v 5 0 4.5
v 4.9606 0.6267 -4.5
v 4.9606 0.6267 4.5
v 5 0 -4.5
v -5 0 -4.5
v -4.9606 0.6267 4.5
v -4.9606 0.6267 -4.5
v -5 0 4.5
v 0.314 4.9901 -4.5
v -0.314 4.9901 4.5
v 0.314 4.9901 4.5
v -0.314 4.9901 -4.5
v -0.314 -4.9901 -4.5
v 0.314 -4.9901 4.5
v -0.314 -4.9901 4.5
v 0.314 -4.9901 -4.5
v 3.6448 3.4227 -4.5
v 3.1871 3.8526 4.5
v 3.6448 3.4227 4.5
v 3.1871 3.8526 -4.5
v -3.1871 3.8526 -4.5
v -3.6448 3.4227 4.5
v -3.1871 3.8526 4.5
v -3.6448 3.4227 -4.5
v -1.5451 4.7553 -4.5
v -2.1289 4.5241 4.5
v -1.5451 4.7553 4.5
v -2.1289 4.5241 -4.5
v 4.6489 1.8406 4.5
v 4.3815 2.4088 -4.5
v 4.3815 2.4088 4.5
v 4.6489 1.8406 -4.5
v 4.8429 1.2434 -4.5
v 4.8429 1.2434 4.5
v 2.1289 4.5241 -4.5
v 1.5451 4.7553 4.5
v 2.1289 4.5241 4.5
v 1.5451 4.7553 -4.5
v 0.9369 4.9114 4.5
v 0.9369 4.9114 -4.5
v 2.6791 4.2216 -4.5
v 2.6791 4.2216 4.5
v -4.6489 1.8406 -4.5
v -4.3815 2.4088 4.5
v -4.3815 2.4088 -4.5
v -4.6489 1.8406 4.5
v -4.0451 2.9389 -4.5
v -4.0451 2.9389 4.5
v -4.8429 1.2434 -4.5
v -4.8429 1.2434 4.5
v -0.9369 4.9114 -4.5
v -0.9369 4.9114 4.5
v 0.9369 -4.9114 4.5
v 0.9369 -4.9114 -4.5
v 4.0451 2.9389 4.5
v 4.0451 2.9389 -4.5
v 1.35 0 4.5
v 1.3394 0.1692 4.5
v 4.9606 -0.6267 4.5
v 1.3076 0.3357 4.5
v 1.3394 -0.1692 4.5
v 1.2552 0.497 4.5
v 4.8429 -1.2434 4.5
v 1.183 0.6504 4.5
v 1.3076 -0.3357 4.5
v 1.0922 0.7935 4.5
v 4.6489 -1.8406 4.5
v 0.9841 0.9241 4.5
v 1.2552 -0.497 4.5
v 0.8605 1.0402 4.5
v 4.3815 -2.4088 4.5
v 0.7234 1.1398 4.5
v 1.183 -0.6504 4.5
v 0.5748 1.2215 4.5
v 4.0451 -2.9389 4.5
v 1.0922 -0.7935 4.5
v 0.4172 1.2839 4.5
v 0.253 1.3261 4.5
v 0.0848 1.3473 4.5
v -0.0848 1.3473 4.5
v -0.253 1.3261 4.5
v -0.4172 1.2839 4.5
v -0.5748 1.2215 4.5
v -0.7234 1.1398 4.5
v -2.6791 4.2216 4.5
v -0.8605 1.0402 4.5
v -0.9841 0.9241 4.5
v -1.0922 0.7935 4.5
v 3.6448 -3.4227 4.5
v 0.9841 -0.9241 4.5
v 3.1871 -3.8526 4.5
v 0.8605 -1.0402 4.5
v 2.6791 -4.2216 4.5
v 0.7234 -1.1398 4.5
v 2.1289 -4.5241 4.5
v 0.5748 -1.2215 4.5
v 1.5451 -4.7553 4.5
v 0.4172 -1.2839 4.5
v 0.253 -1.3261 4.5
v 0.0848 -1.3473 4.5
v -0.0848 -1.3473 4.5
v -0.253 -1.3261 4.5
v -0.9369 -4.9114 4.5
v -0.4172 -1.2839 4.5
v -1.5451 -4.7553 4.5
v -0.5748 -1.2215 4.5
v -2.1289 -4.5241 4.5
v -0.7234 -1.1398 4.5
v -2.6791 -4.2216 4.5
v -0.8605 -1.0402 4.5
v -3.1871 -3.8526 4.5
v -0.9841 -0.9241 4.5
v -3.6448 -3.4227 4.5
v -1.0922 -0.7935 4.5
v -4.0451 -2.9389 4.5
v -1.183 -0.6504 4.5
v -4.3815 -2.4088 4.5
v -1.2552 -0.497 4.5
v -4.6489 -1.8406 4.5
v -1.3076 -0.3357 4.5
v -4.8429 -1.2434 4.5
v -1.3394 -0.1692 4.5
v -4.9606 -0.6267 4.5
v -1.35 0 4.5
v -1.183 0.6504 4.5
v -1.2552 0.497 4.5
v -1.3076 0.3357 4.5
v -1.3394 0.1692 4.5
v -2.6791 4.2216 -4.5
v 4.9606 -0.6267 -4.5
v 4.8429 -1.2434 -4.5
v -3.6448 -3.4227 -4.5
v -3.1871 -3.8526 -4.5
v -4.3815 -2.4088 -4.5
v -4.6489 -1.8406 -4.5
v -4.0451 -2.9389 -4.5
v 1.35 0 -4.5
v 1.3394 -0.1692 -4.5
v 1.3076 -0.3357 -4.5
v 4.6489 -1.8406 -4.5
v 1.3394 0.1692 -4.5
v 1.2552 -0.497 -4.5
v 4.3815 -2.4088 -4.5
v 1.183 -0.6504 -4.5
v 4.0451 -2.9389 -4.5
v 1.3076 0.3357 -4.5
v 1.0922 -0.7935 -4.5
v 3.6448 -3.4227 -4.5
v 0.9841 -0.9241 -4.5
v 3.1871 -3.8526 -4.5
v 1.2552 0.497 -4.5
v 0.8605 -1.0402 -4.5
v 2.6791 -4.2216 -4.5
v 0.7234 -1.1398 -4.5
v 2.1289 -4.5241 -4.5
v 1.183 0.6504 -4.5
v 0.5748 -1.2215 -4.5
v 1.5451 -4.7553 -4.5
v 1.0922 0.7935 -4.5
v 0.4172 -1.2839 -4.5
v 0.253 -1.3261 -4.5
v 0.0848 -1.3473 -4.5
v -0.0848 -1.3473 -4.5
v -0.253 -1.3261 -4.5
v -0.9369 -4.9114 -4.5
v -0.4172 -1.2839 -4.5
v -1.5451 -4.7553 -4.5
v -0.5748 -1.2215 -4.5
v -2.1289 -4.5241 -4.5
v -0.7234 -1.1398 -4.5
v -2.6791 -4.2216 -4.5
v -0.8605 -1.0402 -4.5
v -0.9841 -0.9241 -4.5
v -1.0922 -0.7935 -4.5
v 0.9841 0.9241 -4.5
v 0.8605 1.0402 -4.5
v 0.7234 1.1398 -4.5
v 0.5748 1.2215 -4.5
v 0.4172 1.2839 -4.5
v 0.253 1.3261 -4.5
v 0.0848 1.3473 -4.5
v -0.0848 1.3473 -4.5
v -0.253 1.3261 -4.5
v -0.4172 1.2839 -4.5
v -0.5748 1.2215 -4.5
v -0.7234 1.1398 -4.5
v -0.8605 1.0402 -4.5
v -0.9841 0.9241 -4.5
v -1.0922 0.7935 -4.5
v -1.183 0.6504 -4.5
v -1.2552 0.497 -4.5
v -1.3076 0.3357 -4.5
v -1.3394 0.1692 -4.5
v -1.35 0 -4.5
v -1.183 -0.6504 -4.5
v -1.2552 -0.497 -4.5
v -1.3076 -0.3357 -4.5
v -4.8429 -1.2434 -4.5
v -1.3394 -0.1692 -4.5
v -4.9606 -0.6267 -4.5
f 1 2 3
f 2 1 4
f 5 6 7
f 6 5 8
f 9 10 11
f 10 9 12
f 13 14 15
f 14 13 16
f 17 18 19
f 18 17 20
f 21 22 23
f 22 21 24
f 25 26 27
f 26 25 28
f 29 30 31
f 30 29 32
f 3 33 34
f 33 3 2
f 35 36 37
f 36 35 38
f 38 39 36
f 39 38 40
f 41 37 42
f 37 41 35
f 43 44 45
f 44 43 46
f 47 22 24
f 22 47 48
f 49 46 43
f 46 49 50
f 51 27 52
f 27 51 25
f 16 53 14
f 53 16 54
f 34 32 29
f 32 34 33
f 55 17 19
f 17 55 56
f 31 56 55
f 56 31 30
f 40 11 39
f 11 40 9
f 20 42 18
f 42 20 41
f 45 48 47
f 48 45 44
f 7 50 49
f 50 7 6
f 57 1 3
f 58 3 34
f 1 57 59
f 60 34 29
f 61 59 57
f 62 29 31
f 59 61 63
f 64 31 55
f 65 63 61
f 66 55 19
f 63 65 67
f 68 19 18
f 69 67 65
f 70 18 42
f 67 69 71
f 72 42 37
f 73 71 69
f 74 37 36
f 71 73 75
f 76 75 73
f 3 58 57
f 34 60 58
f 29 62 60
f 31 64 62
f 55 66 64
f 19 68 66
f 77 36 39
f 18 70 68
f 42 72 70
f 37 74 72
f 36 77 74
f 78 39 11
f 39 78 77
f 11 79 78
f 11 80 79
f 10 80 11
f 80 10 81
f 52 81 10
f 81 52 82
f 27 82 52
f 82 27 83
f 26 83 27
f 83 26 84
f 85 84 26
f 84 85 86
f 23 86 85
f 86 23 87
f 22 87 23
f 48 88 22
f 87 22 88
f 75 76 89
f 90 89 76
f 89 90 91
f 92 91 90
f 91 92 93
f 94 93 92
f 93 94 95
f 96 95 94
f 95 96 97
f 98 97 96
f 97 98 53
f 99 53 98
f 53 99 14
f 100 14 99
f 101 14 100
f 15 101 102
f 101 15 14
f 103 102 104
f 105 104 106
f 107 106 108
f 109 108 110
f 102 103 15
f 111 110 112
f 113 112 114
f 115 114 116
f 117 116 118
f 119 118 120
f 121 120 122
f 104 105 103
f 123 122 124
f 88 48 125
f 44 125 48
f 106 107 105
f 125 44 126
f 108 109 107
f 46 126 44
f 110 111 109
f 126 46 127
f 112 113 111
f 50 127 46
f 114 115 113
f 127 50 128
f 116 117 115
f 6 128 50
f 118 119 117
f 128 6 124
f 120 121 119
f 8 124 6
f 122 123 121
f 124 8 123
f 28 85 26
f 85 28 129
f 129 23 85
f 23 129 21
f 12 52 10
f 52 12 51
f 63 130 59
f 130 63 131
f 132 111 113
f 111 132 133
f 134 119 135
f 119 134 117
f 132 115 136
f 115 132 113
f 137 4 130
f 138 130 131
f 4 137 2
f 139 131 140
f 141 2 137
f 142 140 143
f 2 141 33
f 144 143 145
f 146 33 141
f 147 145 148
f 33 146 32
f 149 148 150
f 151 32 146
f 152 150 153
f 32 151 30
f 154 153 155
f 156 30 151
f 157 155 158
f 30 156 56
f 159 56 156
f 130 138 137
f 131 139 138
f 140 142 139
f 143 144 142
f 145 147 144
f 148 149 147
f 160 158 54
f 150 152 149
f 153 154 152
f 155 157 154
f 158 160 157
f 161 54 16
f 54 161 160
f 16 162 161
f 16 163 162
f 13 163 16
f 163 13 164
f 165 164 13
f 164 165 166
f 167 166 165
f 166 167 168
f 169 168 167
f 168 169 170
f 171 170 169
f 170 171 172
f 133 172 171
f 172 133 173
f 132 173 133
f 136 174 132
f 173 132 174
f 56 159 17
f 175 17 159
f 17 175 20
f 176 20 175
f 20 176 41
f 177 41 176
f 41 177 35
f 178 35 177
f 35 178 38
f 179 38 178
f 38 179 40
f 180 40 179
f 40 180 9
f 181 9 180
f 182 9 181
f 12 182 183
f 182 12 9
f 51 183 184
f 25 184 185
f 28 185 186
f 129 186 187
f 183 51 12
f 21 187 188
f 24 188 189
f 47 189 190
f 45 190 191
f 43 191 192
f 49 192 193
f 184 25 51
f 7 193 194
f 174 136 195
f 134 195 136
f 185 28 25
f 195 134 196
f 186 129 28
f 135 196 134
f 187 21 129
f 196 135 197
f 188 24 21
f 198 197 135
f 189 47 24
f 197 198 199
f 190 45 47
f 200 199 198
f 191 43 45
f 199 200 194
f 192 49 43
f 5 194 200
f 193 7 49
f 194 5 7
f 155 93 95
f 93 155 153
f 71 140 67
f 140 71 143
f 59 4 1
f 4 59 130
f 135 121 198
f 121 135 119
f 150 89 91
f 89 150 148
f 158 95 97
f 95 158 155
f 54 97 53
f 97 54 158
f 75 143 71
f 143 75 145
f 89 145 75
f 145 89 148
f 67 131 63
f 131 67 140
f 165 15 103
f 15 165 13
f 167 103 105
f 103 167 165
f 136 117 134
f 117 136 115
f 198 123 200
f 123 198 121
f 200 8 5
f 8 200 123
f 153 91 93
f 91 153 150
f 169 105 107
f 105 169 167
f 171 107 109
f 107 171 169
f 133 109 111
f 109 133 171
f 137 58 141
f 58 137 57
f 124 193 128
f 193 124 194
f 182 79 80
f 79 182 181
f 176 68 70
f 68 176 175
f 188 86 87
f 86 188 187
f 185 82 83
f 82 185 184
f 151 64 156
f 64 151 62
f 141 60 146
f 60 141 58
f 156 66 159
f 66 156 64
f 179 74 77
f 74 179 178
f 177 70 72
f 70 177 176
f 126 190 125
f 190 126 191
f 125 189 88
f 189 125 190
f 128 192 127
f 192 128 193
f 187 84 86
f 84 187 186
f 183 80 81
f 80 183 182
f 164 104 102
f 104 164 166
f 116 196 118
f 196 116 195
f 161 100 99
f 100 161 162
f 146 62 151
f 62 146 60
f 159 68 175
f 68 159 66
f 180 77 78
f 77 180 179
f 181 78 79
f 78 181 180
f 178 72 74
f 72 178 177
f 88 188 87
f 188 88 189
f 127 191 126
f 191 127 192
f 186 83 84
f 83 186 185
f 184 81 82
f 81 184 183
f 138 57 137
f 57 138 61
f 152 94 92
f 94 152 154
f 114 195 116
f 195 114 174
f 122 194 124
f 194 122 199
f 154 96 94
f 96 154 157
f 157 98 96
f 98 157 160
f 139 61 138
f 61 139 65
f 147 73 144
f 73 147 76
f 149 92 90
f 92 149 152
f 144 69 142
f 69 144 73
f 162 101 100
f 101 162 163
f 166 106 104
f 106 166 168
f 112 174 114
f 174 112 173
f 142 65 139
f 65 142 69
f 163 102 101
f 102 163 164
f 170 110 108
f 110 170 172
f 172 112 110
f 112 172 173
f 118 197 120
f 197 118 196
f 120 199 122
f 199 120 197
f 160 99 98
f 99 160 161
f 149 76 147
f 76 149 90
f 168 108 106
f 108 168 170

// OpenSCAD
$fn = 50;


difference() {
	union() {
		translate(v = [0, 0, -4.5000000000]) {
			cylinder(h = 9, r = 5.0000000000);
		}
	}
	union() {
		translate(v = [0, 0, -100.0000000000]) {
			cylinder(h = 200, r = 1.3500000000);
		}
	}
}
